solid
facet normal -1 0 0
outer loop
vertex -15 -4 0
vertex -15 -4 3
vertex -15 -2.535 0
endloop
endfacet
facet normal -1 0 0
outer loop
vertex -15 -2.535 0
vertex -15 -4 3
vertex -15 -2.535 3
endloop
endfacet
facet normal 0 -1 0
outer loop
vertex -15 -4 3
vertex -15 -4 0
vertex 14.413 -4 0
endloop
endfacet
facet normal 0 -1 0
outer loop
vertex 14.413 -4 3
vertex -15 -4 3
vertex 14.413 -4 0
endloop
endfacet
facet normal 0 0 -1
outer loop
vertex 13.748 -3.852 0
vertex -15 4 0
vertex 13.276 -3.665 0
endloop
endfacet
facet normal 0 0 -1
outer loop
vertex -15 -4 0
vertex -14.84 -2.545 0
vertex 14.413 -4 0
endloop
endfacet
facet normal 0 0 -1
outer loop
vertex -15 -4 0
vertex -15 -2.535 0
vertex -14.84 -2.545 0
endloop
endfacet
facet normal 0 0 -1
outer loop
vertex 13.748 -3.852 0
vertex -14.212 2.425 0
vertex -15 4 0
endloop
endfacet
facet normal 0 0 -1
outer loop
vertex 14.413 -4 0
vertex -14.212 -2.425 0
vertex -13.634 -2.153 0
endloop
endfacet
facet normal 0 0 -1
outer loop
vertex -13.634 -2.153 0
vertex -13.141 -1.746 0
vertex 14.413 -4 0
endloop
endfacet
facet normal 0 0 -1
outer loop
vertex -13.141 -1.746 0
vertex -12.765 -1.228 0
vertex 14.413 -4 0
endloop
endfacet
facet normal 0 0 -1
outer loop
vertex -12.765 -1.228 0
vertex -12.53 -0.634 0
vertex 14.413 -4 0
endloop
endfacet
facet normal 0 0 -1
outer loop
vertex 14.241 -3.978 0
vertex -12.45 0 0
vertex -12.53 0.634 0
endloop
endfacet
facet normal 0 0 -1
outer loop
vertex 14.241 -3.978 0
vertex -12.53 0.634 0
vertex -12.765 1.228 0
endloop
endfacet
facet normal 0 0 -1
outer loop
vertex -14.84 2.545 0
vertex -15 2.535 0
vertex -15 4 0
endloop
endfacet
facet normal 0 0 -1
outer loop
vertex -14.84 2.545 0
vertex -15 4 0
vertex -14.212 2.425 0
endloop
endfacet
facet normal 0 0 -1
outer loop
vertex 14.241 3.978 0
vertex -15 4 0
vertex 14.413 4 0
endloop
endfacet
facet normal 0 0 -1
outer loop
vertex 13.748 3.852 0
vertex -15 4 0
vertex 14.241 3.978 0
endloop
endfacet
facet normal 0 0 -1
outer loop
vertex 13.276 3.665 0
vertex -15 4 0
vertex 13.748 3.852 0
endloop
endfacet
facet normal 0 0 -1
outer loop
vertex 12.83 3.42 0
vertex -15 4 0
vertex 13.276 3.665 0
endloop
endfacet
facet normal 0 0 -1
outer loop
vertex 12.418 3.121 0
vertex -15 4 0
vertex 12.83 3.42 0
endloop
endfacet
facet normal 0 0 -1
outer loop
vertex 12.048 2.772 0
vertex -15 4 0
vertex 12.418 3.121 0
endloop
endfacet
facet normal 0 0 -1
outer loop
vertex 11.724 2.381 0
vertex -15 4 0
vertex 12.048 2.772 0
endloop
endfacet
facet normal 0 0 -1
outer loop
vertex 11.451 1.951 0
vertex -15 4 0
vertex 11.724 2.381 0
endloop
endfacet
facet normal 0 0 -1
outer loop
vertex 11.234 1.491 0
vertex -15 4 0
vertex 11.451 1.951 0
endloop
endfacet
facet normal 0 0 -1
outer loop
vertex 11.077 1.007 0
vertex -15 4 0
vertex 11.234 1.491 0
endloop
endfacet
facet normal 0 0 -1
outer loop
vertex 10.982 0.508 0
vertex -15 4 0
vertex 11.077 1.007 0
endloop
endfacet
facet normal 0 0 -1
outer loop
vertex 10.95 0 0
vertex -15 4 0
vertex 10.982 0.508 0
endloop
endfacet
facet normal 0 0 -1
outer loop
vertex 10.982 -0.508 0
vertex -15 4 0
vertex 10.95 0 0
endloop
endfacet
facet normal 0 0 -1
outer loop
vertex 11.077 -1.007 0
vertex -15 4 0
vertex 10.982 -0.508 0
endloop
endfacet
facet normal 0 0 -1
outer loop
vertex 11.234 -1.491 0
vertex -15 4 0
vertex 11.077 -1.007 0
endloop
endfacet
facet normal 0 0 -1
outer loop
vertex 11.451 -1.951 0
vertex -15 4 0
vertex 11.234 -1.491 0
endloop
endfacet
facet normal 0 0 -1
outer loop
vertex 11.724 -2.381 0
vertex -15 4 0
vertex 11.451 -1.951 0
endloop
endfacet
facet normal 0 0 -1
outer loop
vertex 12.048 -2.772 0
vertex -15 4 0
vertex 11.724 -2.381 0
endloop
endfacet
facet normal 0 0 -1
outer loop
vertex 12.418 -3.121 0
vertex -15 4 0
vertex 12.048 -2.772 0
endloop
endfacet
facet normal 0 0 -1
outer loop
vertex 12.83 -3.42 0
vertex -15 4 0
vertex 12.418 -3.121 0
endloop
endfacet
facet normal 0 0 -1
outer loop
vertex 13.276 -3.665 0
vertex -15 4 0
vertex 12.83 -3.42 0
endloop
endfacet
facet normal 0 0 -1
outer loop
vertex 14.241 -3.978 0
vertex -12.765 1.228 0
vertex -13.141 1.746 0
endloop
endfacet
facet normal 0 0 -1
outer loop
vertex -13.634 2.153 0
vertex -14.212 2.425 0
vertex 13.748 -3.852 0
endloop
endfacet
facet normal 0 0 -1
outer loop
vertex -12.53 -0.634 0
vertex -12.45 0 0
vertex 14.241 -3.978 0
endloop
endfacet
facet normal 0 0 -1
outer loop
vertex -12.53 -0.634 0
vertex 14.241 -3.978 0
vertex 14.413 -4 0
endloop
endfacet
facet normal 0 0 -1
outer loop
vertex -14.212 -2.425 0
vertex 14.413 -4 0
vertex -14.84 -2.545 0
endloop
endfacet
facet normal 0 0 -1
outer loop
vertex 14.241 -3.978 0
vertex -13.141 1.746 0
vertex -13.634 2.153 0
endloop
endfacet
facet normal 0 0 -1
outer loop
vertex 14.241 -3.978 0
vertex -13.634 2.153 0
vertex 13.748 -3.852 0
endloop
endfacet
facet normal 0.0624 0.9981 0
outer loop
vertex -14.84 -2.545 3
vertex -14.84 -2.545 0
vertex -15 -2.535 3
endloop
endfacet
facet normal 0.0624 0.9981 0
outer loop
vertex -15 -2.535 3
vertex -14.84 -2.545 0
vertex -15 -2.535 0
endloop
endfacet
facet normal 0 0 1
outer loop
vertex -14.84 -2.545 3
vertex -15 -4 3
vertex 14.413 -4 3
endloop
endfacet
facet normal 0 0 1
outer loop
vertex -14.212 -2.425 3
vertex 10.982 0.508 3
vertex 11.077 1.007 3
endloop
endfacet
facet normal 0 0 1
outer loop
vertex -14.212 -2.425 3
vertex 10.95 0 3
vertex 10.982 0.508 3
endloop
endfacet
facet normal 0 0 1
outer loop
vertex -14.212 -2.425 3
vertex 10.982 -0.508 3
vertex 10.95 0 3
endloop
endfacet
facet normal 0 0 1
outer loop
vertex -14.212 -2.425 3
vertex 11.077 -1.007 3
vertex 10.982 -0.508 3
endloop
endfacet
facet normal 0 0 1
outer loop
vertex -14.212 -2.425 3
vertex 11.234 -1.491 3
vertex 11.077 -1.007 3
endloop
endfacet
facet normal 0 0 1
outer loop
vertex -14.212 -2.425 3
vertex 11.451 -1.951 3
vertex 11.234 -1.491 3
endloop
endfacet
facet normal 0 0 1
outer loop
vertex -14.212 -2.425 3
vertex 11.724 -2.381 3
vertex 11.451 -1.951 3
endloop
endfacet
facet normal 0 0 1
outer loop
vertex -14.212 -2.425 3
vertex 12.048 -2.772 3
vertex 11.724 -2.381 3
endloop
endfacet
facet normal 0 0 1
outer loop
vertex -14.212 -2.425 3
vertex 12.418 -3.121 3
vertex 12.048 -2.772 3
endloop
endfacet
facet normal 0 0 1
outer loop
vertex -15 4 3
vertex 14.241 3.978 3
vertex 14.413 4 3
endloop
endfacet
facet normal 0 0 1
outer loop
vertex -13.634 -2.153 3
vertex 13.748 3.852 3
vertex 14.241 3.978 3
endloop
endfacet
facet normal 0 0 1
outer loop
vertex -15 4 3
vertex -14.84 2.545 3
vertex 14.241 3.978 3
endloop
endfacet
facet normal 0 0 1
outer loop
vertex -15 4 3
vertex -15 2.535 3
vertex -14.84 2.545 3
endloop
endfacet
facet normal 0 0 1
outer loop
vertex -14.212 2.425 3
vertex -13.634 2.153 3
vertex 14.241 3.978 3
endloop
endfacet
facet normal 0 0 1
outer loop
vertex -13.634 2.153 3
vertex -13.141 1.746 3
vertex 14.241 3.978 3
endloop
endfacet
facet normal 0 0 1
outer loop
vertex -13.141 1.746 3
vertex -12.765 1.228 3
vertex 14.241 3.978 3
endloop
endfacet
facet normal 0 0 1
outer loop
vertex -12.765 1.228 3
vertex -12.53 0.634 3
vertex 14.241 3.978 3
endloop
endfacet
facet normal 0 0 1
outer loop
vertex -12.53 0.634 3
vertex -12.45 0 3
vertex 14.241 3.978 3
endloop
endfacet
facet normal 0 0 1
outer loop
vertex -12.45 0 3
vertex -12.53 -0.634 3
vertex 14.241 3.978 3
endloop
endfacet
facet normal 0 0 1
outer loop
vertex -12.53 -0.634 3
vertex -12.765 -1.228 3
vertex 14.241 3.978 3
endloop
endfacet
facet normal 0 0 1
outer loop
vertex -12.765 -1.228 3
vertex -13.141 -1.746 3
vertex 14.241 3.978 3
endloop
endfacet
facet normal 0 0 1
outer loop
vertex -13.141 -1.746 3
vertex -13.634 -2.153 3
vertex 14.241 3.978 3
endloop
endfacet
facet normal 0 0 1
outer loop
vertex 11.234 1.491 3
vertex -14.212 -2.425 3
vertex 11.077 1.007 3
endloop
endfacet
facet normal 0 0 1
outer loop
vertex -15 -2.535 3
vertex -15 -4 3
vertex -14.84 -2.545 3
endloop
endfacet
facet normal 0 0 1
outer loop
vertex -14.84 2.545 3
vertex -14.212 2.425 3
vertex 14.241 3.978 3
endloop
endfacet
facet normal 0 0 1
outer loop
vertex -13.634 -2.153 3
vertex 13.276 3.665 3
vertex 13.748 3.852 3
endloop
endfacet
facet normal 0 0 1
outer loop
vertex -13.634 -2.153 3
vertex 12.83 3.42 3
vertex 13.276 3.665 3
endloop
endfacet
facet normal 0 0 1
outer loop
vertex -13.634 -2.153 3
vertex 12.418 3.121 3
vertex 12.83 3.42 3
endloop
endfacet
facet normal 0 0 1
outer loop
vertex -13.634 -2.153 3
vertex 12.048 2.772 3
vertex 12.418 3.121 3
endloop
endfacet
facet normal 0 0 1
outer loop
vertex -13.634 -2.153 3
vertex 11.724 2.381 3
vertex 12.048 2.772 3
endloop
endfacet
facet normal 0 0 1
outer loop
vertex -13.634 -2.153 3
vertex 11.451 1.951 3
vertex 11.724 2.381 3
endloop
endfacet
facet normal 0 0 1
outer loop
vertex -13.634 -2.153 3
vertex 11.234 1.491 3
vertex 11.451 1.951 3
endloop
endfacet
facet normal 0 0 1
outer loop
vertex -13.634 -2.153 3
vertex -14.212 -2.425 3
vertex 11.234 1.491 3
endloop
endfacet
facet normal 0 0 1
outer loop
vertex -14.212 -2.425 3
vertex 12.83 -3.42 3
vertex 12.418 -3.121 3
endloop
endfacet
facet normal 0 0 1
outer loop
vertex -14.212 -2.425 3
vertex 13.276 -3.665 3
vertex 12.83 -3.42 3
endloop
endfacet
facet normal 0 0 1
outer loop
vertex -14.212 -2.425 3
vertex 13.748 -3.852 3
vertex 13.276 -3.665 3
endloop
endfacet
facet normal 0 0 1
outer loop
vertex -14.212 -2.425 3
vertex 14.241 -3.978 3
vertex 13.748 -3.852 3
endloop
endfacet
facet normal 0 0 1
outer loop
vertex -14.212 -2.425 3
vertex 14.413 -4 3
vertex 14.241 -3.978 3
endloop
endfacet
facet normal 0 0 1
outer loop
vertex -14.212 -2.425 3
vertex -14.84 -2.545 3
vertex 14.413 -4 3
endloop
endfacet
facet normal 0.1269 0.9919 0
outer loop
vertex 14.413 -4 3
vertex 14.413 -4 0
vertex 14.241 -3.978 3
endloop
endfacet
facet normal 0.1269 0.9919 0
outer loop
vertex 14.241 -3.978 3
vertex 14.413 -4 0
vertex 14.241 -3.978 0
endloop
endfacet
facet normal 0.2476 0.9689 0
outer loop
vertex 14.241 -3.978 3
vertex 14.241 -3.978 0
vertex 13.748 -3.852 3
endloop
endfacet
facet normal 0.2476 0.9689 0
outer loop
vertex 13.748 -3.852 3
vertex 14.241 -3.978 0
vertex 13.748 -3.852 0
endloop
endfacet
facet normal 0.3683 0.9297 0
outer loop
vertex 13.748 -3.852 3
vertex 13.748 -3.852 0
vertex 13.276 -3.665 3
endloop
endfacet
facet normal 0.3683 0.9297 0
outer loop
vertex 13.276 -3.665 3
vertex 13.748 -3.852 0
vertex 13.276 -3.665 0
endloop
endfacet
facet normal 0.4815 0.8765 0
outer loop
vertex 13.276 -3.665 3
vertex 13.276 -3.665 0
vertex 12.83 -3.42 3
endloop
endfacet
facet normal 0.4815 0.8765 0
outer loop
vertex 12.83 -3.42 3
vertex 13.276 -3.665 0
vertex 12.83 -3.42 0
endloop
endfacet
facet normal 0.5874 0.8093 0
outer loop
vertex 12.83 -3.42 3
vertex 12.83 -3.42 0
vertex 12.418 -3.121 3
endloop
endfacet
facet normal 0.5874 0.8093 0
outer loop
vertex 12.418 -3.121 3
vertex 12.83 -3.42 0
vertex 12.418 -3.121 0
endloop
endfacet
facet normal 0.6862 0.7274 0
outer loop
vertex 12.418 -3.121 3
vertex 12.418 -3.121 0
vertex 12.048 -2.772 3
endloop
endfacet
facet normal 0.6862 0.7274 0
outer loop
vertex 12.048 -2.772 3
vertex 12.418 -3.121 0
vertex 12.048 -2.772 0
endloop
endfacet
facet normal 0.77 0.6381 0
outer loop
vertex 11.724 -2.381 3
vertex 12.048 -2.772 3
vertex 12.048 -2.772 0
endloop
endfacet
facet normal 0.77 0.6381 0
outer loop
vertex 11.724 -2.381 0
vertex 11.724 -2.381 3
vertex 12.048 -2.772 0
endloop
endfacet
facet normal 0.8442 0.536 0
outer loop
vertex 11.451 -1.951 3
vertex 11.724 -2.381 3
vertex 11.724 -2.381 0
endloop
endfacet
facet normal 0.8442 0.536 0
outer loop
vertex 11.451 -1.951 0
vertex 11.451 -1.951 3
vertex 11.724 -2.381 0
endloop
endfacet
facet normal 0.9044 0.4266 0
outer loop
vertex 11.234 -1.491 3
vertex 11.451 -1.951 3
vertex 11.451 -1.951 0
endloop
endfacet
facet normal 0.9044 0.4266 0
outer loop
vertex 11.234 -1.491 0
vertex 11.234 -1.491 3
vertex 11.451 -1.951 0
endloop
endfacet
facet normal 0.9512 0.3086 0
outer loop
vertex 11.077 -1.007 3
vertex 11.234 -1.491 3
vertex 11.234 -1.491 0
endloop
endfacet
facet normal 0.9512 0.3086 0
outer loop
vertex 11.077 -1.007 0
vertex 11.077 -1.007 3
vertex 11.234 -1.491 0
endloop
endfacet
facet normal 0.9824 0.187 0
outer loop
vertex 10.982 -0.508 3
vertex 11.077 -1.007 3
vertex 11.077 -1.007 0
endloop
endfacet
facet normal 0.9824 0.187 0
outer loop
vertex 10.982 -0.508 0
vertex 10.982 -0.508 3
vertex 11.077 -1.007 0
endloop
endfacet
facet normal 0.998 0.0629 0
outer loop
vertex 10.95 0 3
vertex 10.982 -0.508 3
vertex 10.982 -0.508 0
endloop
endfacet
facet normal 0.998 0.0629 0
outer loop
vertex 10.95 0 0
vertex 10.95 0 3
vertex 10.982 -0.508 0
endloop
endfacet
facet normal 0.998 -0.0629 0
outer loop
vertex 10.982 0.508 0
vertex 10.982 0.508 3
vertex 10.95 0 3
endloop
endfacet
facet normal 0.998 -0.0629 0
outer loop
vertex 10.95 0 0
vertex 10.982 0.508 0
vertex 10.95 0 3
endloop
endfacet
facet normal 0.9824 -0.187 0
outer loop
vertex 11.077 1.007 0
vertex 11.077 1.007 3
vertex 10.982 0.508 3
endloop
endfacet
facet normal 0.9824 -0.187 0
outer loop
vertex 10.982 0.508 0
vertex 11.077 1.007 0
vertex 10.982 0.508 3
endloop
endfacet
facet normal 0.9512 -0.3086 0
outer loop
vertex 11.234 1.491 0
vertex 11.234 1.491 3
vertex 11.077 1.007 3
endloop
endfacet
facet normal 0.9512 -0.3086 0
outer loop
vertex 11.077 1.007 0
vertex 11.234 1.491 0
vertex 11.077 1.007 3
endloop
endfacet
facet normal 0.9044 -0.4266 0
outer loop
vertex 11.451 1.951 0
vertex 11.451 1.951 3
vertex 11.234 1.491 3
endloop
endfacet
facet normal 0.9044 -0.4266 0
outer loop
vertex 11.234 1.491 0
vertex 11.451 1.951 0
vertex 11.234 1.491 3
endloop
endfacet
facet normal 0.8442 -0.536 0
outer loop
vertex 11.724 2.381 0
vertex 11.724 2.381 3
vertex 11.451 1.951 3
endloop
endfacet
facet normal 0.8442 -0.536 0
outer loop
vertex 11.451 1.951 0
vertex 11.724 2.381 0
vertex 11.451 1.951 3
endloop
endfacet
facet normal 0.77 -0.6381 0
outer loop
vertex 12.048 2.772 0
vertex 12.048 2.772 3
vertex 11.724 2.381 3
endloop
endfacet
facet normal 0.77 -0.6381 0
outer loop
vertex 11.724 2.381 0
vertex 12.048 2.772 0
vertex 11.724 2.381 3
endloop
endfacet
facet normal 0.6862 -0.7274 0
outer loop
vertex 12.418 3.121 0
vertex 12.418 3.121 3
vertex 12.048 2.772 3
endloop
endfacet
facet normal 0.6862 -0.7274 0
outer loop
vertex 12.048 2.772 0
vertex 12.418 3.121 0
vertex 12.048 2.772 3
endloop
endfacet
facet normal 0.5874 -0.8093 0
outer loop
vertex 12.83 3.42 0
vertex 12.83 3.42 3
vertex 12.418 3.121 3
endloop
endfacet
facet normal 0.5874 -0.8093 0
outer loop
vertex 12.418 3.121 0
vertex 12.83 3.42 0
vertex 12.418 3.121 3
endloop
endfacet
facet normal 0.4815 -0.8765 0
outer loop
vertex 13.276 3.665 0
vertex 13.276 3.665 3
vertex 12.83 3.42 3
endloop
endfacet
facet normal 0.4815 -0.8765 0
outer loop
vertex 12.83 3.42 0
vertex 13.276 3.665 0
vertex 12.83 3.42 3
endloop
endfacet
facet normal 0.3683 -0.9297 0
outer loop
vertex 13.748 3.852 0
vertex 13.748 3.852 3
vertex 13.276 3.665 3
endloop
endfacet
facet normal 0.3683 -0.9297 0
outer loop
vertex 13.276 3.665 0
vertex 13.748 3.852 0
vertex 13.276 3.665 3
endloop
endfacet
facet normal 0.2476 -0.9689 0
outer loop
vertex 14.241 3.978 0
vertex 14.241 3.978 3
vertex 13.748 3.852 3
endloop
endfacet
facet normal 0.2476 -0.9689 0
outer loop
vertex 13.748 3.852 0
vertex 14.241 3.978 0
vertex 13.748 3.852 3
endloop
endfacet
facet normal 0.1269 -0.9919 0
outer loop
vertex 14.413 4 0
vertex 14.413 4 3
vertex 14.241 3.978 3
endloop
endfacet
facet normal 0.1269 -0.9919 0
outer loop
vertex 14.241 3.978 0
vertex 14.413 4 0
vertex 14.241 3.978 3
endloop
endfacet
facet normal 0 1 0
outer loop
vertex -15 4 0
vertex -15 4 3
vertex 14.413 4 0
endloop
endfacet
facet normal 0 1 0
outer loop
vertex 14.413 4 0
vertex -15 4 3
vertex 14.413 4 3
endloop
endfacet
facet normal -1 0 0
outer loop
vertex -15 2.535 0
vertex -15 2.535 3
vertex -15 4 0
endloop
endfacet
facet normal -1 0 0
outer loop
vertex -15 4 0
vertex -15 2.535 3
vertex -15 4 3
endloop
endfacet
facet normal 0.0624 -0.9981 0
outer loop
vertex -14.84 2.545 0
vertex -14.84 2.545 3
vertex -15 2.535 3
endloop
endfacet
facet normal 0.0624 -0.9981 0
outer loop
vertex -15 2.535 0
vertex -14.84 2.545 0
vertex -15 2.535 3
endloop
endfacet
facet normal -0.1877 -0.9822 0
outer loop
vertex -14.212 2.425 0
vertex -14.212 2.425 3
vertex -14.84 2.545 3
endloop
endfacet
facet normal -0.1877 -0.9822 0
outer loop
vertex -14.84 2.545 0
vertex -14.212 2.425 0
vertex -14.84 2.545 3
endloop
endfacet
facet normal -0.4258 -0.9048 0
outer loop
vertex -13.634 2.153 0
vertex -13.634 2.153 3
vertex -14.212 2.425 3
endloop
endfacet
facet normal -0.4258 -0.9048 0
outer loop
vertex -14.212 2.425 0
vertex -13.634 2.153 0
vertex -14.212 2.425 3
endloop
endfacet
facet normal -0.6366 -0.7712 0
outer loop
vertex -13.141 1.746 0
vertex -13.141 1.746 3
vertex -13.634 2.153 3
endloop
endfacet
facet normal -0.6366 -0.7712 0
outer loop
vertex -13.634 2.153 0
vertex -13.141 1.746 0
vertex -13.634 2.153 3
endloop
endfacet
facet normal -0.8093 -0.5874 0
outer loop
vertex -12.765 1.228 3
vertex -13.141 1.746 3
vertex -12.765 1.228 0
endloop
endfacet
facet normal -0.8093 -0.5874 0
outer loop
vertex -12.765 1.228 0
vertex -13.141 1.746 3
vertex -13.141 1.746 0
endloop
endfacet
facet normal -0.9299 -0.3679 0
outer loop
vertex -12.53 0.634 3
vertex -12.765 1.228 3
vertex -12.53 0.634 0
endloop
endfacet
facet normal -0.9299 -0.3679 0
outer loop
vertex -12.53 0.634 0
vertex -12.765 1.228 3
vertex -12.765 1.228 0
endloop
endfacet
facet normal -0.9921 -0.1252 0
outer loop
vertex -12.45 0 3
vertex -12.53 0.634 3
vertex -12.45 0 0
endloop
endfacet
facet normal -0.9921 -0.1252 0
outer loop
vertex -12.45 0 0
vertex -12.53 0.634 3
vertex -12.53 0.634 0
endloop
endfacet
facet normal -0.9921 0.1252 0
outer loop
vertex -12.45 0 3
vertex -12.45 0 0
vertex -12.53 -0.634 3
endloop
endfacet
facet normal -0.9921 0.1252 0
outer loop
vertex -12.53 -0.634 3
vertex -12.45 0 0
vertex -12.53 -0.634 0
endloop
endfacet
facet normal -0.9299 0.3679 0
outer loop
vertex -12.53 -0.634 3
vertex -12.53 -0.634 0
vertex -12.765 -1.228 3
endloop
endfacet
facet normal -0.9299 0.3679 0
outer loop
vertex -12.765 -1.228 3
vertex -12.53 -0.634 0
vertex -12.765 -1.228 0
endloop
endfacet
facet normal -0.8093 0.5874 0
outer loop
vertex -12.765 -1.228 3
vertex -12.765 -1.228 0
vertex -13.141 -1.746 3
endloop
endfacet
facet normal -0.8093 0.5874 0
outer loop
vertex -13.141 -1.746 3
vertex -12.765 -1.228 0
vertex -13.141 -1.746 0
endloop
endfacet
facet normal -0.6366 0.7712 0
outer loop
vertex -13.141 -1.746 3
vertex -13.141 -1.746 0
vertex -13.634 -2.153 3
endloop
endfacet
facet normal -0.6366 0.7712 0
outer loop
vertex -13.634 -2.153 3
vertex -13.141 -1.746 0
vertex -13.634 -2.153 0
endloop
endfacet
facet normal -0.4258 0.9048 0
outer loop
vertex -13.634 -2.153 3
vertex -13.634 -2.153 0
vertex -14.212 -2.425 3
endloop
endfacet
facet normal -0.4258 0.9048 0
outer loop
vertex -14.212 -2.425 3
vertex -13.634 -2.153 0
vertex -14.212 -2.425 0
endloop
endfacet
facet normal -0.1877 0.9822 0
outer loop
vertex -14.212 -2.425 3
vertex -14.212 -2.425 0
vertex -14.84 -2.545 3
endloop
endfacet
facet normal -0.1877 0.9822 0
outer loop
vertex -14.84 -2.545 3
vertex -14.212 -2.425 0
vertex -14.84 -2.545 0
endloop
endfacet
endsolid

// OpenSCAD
rod_dia = 8;
motor_shaft_dia = 5;
clearance = 0.1;

zrod_leadscrew_dist = 30;

height = 3;

difference() {
    translate([0,0,height/2]) cube([zrod_leadscrew_dist, rod_dia, height], center=true);

    translate([zrod_leadscrew_dist/2,0,0]) cylinder(d=rod_dia + clearance, h=height, $fn=50);
    translate([-zrod_leadscrew_dist/2,0,0]) cylinder(d=motor_shaft_dia + clearance, h=height, $fn=25);
}
